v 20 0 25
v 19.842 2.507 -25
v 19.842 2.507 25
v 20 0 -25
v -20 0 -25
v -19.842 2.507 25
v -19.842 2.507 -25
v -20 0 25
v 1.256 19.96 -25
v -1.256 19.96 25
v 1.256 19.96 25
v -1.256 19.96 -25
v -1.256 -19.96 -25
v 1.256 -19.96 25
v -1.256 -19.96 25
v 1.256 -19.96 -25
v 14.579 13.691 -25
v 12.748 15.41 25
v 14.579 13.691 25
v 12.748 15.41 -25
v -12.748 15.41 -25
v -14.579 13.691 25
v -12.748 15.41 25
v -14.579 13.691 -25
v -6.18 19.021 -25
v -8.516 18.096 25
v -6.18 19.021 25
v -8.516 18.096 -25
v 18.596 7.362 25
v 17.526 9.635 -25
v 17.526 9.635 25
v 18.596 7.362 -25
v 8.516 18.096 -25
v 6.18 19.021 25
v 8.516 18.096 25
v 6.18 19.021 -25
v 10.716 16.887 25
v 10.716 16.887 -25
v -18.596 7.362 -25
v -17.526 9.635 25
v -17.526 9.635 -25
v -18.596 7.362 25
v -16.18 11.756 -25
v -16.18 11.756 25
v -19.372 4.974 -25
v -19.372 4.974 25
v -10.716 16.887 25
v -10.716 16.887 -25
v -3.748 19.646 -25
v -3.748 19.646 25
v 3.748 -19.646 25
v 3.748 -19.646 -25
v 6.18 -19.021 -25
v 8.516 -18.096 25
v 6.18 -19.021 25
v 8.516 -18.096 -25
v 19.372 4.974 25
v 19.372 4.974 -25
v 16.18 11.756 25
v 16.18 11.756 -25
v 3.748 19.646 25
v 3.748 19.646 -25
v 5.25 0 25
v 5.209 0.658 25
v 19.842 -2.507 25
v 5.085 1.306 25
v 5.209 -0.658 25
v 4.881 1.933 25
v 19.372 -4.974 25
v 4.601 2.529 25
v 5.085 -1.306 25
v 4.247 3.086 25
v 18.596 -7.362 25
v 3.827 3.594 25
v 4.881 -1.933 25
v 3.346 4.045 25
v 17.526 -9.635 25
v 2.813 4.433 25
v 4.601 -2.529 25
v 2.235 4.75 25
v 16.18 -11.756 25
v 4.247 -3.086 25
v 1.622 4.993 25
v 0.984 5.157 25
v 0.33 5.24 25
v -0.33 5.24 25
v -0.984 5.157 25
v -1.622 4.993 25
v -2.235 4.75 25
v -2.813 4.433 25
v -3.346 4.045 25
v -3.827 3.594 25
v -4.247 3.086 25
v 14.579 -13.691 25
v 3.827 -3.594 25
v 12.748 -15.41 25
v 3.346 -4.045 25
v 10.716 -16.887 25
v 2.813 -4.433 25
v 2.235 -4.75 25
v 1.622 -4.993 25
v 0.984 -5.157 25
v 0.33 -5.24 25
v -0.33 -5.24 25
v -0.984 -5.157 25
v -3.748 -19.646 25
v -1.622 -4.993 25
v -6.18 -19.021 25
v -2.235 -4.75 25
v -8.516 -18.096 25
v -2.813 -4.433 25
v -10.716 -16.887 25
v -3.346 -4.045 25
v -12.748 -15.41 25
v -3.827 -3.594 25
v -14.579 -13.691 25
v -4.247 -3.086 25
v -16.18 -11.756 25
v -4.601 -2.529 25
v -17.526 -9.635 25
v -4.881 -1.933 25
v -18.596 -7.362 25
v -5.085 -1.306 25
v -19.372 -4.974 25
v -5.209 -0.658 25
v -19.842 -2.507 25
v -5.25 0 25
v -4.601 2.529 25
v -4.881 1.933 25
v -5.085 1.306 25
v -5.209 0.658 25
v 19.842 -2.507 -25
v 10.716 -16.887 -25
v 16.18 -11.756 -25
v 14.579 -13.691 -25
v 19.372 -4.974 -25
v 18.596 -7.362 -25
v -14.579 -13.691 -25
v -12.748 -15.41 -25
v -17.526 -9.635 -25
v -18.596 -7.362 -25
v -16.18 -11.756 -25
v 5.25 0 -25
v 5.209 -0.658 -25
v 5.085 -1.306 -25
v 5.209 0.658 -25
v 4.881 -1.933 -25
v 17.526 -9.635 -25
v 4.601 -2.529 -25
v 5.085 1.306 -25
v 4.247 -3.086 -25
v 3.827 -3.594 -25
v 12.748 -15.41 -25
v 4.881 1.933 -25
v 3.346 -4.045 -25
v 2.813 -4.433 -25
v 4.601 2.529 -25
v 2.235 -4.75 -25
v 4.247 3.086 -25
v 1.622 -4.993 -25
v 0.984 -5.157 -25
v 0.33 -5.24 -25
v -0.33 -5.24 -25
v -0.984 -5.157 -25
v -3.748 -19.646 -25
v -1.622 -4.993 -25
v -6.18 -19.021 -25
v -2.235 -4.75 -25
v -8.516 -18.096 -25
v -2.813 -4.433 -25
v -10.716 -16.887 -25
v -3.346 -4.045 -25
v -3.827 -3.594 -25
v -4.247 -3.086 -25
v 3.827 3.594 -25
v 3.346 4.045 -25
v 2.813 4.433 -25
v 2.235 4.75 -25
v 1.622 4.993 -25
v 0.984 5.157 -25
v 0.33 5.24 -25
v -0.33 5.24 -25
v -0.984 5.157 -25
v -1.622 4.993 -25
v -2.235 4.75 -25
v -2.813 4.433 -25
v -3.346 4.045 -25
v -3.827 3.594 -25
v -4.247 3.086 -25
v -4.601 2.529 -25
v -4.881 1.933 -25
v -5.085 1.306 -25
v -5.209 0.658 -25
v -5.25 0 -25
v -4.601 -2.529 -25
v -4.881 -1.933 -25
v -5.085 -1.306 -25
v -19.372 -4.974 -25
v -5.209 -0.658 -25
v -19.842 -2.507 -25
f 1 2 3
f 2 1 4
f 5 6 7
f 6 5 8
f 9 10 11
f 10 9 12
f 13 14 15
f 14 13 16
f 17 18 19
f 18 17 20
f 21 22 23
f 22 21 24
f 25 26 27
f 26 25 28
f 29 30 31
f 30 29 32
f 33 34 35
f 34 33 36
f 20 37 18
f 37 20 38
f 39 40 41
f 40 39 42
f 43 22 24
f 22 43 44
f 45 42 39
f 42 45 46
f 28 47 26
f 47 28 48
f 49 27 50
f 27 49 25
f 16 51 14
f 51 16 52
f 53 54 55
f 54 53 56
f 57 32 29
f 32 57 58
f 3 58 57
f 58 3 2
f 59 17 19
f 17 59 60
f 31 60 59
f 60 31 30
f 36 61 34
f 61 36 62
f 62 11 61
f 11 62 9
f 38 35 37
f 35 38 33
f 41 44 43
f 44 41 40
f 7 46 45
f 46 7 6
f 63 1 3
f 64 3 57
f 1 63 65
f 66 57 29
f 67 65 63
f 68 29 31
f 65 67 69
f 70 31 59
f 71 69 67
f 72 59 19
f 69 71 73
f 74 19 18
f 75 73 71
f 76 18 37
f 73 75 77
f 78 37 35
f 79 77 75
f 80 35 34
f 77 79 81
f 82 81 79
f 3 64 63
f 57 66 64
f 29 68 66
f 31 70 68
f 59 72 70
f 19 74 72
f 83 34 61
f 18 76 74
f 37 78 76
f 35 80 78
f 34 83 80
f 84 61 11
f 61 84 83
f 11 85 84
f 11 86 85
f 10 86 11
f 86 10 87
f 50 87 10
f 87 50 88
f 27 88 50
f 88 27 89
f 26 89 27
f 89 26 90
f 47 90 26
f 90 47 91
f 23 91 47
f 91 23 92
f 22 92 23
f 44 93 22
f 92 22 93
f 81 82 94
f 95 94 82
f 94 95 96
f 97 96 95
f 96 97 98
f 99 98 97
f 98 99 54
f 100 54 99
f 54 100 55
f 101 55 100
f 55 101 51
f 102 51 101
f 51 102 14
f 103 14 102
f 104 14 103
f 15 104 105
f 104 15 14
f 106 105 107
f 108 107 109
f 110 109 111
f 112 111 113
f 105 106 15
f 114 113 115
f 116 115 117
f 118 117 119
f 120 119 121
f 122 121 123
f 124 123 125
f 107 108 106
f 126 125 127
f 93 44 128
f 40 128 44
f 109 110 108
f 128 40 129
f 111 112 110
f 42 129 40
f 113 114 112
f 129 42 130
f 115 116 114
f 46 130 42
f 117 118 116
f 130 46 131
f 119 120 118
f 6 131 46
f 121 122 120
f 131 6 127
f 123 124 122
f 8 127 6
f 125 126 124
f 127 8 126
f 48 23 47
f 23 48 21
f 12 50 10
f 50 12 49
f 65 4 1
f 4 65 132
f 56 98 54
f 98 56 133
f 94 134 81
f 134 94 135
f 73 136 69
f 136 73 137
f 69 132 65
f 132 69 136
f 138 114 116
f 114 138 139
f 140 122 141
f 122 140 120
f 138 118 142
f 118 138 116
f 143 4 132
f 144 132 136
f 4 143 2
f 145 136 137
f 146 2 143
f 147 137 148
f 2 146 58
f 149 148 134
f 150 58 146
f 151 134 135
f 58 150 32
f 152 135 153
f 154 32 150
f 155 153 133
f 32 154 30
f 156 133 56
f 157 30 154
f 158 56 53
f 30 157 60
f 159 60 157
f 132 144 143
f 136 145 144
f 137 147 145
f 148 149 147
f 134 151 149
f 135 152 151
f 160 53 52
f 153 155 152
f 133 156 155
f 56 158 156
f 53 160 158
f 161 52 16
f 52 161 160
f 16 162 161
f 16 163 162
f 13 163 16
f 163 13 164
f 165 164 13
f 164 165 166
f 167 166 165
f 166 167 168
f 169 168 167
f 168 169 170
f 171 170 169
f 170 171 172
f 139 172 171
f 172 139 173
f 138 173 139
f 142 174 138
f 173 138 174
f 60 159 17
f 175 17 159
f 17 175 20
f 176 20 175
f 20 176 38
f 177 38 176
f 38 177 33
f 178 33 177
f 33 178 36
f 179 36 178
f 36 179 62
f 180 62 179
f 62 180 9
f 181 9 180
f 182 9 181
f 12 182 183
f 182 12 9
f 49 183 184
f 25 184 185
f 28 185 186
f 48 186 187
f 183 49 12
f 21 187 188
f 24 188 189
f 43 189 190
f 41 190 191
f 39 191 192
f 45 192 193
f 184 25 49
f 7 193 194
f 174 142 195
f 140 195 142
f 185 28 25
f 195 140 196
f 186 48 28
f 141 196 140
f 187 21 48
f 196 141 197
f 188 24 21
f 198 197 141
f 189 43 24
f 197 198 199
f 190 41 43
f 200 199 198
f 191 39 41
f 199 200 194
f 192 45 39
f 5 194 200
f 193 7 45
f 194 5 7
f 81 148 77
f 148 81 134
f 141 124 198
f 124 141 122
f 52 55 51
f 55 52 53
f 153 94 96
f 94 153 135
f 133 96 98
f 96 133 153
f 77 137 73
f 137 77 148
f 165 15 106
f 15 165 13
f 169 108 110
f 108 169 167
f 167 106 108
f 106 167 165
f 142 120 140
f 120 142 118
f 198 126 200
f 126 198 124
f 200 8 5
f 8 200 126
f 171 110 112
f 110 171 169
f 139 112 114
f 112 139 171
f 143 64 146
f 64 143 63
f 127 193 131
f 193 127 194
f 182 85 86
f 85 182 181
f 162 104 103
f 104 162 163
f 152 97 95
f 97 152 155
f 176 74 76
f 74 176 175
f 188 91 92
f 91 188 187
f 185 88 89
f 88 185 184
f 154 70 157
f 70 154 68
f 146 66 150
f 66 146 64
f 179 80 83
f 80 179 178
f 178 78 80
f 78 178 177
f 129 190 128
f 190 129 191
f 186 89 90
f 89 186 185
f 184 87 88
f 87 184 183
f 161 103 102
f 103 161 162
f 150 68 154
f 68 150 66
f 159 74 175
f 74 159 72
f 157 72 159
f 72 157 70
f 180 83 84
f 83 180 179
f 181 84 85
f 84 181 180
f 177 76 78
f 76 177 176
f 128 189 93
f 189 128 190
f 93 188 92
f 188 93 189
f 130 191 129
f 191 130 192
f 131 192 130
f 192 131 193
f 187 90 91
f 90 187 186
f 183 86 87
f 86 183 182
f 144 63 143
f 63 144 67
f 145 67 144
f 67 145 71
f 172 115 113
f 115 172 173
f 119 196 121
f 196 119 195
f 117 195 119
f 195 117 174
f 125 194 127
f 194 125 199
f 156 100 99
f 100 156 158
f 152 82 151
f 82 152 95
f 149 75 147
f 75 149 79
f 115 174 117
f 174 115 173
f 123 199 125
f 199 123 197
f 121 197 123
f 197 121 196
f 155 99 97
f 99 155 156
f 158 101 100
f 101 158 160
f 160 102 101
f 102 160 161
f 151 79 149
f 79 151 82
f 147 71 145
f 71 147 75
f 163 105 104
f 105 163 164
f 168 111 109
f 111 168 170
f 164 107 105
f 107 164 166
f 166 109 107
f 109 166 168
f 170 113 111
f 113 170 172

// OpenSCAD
$fn = 50;


difference() {
	union() {
		translate(v = [0, 0, -25.0000000000]) {
			cylinder(h = 50, r = 20.0000000000);
		}
	}
	union() {
		translate(v = [0, 0, -100.0000000000]) {
			cylinder(h = 200, r = 5.2500000000);
		}
	}
}
